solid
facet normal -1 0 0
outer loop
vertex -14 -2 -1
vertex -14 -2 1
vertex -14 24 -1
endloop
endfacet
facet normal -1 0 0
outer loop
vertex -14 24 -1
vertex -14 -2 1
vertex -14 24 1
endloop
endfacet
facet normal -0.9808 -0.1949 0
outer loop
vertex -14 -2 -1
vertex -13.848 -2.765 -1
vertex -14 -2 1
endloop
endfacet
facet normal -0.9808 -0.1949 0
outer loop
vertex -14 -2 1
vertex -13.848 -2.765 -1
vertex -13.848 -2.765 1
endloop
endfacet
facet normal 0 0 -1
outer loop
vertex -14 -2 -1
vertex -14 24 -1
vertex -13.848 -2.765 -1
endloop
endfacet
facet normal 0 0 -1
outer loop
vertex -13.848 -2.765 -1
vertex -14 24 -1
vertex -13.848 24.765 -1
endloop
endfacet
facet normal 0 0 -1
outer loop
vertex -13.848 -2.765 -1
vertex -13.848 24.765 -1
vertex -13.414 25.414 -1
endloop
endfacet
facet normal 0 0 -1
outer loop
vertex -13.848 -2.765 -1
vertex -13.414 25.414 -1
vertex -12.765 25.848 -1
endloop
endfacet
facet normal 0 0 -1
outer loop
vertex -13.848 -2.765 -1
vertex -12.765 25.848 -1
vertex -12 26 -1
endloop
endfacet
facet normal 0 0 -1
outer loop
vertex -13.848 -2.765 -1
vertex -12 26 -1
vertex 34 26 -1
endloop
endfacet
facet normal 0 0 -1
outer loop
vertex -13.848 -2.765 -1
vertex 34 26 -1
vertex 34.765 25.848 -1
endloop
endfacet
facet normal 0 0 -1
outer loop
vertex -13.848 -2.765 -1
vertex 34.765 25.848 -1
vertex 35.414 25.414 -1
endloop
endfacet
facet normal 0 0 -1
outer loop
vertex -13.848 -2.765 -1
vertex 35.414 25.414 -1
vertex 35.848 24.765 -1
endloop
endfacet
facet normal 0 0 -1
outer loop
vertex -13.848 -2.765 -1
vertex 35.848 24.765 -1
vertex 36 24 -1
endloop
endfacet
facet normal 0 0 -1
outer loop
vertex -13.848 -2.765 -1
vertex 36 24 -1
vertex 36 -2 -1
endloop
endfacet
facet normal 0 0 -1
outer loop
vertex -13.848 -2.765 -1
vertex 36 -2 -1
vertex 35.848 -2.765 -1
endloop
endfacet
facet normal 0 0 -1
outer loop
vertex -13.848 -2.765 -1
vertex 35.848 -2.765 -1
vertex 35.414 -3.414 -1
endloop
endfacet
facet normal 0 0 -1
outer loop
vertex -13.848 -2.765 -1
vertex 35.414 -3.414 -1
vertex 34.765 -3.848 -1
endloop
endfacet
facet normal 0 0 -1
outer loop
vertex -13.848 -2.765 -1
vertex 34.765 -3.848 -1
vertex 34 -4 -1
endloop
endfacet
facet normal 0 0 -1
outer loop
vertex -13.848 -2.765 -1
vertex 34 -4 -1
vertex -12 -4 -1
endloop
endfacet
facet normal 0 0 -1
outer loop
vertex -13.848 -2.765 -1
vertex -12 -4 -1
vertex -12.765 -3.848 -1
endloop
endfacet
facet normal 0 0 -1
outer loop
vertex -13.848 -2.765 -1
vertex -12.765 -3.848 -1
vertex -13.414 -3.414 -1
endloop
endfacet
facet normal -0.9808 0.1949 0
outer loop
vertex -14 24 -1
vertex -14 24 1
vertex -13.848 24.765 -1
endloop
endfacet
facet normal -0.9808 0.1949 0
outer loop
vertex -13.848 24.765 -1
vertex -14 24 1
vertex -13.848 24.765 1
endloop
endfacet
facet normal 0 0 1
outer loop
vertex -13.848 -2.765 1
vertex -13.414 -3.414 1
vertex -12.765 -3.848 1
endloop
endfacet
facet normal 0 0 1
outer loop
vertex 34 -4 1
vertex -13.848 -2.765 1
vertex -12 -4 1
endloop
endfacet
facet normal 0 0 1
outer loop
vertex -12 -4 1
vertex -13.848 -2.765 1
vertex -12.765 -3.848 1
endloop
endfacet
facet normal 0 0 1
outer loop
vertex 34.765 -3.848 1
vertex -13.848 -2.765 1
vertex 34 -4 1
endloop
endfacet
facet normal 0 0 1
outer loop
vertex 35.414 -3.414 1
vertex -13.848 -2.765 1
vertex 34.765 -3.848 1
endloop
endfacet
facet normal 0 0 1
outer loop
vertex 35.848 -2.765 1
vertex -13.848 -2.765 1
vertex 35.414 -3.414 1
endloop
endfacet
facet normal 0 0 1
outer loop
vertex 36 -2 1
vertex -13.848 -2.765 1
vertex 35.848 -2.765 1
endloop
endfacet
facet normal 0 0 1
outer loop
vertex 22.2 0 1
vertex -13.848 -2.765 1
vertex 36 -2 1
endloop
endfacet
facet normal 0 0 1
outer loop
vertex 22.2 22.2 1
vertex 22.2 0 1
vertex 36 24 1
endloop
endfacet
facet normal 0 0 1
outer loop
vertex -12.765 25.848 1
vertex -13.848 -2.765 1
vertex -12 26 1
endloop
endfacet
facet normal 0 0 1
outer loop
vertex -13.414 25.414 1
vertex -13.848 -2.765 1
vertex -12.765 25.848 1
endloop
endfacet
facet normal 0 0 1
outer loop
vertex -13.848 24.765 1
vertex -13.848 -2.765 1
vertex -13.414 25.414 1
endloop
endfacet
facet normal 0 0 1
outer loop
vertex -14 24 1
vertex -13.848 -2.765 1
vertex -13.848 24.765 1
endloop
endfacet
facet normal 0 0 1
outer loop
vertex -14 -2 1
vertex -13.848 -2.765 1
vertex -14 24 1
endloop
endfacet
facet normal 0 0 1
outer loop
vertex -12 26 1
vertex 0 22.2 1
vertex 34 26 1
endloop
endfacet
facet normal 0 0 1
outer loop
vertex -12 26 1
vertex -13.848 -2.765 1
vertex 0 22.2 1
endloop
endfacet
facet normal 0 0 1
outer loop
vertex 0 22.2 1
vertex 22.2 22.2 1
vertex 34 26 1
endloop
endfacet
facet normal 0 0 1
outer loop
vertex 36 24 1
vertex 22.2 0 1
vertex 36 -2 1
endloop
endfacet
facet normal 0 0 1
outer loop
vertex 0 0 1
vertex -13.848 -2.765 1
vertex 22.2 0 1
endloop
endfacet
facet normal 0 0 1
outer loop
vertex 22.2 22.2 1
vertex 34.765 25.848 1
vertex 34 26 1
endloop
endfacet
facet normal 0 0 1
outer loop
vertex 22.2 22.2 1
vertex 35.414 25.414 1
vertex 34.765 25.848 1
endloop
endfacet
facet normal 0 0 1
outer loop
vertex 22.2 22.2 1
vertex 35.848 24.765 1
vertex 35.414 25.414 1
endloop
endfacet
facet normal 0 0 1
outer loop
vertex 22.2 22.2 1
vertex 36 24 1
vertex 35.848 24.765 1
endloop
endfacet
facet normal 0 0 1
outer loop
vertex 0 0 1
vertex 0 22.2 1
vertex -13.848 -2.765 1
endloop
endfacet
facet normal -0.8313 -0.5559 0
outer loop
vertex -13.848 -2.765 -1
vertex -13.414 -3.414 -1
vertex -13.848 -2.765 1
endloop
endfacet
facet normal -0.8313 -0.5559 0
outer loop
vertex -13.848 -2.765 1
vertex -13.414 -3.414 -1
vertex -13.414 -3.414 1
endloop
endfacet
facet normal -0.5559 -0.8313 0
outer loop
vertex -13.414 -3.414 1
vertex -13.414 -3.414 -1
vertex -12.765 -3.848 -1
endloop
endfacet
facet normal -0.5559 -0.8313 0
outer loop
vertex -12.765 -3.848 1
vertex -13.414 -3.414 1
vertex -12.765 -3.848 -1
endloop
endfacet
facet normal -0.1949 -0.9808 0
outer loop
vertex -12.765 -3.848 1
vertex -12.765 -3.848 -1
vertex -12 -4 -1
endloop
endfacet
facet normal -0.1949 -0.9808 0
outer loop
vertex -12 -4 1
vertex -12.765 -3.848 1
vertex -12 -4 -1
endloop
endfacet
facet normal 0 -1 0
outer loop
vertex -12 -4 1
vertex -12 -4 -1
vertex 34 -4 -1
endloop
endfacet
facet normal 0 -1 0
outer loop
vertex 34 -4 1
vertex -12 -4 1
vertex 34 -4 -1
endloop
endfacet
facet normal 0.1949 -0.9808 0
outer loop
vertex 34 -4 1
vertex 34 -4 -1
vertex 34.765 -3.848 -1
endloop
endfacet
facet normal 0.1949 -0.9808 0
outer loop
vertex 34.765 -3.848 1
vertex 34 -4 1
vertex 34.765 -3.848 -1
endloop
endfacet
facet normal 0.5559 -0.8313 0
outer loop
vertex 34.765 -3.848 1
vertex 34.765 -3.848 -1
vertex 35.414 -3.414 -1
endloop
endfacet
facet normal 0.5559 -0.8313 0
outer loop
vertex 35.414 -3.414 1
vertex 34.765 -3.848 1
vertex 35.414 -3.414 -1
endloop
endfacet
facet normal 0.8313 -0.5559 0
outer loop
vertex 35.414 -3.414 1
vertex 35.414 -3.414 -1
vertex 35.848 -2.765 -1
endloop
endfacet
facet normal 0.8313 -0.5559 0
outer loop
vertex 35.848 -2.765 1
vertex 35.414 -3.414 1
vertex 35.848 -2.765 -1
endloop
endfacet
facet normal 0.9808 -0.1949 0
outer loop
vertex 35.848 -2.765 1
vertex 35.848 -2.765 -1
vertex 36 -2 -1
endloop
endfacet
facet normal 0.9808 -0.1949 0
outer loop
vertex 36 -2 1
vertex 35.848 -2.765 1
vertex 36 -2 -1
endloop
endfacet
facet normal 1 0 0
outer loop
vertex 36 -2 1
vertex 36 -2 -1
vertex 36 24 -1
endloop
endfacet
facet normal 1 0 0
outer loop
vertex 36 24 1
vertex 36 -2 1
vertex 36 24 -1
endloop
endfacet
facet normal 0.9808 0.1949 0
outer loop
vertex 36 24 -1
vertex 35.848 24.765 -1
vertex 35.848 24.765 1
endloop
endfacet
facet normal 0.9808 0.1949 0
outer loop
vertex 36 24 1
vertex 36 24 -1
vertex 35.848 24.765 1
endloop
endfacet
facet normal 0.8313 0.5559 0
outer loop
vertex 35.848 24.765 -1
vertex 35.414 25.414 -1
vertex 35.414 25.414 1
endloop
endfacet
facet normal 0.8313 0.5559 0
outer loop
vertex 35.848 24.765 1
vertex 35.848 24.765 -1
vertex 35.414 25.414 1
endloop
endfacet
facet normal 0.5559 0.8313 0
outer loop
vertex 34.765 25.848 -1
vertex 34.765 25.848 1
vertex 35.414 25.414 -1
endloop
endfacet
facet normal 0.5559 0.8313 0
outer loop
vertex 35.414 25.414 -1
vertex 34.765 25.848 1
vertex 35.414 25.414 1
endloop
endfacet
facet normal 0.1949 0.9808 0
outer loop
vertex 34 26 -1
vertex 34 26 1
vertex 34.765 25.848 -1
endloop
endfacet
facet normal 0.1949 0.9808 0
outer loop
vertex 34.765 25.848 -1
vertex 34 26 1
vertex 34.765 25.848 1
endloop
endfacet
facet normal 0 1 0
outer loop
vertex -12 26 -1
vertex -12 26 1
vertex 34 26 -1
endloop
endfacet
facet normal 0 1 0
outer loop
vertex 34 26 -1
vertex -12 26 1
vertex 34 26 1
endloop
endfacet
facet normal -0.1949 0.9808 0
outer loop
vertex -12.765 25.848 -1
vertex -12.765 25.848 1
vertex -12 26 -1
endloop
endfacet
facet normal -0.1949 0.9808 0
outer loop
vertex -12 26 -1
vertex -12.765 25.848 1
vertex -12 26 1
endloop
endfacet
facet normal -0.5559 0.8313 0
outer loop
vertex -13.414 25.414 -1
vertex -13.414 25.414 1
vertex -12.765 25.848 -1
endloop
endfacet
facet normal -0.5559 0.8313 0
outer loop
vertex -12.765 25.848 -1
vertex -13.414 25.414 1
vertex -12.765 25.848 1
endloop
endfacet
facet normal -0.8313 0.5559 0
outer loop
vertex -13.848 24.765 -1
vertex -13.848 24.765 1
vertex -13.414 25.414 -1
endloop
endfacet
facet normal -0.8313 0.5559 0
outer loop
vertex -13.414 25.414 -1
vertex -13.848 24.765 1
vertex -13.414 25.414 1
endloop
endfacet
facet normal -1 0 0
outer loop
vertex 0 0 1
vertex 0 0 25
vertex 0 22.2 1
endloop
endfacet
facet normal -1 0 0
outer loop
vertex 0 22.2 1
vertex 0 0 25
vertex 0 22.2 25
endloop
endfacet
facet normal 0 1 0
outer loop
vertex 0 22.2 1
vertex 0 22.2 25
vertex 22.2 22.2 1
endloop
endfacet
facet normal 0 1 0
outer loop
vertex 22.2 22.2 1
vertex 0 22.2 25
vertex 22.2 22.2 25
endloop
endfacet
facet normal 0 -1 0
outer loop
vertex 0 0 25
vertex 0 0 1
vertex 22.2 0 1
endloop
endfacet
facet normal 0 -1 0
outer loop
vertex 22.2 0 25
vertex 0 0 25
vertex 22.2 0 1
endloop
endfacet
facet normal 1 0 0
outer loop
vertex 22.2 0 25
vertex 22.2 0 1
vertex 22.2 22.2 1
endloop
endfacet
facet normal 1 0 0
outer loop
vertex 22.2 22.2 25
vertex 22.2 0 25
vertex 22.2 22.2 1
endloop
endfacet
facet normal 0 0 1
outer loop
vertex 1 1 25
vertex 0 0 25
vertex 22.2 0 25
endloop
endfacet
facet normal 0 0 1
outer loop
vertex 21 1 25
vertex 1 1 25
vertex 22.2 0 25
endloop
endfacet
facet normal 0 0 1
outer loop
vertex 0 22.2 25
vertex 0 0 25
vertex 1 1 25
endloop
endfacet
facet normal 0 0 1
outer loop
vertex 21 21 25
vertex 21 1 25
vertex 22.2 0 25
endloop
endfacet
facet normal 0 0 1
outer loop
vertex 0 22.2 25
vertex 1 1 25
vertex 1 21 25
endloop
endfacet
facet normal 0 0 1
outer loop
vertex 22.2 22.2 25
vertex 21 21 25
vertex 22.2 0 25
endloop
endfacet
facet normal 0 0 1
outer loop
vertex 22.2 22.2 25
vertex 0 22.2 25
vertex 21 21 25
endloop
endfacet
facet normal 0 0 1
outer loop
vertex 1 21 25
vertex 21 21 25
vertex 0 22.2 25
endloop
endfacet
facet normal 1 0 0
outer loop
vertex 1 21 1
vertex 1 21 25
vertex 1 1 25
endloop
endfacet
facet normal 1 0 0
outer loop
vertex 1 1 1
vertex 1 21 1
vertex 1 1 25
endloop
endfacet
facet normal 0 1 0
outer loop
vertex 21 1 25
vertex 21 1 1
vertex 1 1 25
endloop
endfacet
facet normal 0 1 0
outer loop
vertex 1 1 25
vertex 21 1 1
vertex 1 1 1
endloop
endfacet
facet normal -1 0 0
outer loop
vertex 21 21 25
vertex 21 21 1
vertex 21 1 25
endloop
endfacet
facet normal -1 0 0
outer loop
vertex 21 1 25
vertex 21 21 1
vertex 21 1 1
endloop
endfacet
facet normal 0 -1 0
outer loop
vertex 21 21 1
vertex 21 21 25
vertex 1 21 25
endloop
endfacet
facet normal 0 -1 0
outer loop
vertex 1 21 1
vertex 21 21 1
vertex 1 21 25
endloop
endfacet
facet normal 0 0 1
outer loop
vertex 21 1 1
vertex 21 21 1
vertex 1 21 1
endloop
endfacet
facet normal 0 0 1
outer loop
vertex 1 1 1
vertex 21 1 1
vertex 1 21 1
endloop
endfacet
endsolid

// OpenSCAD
//  Misumi 2020 extrusion "stand with 2 legs" 
//
//  I use this as the top of a 2020 web cam stand
//  for my Microsoft 3000 HD web cam to grab on to
//
//  I printed in PLA .4
//
//  aBrainDump.com


difference(){
cube([22.2,22.2,25]);
translate([1,1,1])
cube([20,20,28]);

}

translate([-12,-2,-1])
			minkowski() {
				cube([50-2*2,30-2*2,2-1]);
				cylinder(r=2, h=1, $fn=16);
			}
